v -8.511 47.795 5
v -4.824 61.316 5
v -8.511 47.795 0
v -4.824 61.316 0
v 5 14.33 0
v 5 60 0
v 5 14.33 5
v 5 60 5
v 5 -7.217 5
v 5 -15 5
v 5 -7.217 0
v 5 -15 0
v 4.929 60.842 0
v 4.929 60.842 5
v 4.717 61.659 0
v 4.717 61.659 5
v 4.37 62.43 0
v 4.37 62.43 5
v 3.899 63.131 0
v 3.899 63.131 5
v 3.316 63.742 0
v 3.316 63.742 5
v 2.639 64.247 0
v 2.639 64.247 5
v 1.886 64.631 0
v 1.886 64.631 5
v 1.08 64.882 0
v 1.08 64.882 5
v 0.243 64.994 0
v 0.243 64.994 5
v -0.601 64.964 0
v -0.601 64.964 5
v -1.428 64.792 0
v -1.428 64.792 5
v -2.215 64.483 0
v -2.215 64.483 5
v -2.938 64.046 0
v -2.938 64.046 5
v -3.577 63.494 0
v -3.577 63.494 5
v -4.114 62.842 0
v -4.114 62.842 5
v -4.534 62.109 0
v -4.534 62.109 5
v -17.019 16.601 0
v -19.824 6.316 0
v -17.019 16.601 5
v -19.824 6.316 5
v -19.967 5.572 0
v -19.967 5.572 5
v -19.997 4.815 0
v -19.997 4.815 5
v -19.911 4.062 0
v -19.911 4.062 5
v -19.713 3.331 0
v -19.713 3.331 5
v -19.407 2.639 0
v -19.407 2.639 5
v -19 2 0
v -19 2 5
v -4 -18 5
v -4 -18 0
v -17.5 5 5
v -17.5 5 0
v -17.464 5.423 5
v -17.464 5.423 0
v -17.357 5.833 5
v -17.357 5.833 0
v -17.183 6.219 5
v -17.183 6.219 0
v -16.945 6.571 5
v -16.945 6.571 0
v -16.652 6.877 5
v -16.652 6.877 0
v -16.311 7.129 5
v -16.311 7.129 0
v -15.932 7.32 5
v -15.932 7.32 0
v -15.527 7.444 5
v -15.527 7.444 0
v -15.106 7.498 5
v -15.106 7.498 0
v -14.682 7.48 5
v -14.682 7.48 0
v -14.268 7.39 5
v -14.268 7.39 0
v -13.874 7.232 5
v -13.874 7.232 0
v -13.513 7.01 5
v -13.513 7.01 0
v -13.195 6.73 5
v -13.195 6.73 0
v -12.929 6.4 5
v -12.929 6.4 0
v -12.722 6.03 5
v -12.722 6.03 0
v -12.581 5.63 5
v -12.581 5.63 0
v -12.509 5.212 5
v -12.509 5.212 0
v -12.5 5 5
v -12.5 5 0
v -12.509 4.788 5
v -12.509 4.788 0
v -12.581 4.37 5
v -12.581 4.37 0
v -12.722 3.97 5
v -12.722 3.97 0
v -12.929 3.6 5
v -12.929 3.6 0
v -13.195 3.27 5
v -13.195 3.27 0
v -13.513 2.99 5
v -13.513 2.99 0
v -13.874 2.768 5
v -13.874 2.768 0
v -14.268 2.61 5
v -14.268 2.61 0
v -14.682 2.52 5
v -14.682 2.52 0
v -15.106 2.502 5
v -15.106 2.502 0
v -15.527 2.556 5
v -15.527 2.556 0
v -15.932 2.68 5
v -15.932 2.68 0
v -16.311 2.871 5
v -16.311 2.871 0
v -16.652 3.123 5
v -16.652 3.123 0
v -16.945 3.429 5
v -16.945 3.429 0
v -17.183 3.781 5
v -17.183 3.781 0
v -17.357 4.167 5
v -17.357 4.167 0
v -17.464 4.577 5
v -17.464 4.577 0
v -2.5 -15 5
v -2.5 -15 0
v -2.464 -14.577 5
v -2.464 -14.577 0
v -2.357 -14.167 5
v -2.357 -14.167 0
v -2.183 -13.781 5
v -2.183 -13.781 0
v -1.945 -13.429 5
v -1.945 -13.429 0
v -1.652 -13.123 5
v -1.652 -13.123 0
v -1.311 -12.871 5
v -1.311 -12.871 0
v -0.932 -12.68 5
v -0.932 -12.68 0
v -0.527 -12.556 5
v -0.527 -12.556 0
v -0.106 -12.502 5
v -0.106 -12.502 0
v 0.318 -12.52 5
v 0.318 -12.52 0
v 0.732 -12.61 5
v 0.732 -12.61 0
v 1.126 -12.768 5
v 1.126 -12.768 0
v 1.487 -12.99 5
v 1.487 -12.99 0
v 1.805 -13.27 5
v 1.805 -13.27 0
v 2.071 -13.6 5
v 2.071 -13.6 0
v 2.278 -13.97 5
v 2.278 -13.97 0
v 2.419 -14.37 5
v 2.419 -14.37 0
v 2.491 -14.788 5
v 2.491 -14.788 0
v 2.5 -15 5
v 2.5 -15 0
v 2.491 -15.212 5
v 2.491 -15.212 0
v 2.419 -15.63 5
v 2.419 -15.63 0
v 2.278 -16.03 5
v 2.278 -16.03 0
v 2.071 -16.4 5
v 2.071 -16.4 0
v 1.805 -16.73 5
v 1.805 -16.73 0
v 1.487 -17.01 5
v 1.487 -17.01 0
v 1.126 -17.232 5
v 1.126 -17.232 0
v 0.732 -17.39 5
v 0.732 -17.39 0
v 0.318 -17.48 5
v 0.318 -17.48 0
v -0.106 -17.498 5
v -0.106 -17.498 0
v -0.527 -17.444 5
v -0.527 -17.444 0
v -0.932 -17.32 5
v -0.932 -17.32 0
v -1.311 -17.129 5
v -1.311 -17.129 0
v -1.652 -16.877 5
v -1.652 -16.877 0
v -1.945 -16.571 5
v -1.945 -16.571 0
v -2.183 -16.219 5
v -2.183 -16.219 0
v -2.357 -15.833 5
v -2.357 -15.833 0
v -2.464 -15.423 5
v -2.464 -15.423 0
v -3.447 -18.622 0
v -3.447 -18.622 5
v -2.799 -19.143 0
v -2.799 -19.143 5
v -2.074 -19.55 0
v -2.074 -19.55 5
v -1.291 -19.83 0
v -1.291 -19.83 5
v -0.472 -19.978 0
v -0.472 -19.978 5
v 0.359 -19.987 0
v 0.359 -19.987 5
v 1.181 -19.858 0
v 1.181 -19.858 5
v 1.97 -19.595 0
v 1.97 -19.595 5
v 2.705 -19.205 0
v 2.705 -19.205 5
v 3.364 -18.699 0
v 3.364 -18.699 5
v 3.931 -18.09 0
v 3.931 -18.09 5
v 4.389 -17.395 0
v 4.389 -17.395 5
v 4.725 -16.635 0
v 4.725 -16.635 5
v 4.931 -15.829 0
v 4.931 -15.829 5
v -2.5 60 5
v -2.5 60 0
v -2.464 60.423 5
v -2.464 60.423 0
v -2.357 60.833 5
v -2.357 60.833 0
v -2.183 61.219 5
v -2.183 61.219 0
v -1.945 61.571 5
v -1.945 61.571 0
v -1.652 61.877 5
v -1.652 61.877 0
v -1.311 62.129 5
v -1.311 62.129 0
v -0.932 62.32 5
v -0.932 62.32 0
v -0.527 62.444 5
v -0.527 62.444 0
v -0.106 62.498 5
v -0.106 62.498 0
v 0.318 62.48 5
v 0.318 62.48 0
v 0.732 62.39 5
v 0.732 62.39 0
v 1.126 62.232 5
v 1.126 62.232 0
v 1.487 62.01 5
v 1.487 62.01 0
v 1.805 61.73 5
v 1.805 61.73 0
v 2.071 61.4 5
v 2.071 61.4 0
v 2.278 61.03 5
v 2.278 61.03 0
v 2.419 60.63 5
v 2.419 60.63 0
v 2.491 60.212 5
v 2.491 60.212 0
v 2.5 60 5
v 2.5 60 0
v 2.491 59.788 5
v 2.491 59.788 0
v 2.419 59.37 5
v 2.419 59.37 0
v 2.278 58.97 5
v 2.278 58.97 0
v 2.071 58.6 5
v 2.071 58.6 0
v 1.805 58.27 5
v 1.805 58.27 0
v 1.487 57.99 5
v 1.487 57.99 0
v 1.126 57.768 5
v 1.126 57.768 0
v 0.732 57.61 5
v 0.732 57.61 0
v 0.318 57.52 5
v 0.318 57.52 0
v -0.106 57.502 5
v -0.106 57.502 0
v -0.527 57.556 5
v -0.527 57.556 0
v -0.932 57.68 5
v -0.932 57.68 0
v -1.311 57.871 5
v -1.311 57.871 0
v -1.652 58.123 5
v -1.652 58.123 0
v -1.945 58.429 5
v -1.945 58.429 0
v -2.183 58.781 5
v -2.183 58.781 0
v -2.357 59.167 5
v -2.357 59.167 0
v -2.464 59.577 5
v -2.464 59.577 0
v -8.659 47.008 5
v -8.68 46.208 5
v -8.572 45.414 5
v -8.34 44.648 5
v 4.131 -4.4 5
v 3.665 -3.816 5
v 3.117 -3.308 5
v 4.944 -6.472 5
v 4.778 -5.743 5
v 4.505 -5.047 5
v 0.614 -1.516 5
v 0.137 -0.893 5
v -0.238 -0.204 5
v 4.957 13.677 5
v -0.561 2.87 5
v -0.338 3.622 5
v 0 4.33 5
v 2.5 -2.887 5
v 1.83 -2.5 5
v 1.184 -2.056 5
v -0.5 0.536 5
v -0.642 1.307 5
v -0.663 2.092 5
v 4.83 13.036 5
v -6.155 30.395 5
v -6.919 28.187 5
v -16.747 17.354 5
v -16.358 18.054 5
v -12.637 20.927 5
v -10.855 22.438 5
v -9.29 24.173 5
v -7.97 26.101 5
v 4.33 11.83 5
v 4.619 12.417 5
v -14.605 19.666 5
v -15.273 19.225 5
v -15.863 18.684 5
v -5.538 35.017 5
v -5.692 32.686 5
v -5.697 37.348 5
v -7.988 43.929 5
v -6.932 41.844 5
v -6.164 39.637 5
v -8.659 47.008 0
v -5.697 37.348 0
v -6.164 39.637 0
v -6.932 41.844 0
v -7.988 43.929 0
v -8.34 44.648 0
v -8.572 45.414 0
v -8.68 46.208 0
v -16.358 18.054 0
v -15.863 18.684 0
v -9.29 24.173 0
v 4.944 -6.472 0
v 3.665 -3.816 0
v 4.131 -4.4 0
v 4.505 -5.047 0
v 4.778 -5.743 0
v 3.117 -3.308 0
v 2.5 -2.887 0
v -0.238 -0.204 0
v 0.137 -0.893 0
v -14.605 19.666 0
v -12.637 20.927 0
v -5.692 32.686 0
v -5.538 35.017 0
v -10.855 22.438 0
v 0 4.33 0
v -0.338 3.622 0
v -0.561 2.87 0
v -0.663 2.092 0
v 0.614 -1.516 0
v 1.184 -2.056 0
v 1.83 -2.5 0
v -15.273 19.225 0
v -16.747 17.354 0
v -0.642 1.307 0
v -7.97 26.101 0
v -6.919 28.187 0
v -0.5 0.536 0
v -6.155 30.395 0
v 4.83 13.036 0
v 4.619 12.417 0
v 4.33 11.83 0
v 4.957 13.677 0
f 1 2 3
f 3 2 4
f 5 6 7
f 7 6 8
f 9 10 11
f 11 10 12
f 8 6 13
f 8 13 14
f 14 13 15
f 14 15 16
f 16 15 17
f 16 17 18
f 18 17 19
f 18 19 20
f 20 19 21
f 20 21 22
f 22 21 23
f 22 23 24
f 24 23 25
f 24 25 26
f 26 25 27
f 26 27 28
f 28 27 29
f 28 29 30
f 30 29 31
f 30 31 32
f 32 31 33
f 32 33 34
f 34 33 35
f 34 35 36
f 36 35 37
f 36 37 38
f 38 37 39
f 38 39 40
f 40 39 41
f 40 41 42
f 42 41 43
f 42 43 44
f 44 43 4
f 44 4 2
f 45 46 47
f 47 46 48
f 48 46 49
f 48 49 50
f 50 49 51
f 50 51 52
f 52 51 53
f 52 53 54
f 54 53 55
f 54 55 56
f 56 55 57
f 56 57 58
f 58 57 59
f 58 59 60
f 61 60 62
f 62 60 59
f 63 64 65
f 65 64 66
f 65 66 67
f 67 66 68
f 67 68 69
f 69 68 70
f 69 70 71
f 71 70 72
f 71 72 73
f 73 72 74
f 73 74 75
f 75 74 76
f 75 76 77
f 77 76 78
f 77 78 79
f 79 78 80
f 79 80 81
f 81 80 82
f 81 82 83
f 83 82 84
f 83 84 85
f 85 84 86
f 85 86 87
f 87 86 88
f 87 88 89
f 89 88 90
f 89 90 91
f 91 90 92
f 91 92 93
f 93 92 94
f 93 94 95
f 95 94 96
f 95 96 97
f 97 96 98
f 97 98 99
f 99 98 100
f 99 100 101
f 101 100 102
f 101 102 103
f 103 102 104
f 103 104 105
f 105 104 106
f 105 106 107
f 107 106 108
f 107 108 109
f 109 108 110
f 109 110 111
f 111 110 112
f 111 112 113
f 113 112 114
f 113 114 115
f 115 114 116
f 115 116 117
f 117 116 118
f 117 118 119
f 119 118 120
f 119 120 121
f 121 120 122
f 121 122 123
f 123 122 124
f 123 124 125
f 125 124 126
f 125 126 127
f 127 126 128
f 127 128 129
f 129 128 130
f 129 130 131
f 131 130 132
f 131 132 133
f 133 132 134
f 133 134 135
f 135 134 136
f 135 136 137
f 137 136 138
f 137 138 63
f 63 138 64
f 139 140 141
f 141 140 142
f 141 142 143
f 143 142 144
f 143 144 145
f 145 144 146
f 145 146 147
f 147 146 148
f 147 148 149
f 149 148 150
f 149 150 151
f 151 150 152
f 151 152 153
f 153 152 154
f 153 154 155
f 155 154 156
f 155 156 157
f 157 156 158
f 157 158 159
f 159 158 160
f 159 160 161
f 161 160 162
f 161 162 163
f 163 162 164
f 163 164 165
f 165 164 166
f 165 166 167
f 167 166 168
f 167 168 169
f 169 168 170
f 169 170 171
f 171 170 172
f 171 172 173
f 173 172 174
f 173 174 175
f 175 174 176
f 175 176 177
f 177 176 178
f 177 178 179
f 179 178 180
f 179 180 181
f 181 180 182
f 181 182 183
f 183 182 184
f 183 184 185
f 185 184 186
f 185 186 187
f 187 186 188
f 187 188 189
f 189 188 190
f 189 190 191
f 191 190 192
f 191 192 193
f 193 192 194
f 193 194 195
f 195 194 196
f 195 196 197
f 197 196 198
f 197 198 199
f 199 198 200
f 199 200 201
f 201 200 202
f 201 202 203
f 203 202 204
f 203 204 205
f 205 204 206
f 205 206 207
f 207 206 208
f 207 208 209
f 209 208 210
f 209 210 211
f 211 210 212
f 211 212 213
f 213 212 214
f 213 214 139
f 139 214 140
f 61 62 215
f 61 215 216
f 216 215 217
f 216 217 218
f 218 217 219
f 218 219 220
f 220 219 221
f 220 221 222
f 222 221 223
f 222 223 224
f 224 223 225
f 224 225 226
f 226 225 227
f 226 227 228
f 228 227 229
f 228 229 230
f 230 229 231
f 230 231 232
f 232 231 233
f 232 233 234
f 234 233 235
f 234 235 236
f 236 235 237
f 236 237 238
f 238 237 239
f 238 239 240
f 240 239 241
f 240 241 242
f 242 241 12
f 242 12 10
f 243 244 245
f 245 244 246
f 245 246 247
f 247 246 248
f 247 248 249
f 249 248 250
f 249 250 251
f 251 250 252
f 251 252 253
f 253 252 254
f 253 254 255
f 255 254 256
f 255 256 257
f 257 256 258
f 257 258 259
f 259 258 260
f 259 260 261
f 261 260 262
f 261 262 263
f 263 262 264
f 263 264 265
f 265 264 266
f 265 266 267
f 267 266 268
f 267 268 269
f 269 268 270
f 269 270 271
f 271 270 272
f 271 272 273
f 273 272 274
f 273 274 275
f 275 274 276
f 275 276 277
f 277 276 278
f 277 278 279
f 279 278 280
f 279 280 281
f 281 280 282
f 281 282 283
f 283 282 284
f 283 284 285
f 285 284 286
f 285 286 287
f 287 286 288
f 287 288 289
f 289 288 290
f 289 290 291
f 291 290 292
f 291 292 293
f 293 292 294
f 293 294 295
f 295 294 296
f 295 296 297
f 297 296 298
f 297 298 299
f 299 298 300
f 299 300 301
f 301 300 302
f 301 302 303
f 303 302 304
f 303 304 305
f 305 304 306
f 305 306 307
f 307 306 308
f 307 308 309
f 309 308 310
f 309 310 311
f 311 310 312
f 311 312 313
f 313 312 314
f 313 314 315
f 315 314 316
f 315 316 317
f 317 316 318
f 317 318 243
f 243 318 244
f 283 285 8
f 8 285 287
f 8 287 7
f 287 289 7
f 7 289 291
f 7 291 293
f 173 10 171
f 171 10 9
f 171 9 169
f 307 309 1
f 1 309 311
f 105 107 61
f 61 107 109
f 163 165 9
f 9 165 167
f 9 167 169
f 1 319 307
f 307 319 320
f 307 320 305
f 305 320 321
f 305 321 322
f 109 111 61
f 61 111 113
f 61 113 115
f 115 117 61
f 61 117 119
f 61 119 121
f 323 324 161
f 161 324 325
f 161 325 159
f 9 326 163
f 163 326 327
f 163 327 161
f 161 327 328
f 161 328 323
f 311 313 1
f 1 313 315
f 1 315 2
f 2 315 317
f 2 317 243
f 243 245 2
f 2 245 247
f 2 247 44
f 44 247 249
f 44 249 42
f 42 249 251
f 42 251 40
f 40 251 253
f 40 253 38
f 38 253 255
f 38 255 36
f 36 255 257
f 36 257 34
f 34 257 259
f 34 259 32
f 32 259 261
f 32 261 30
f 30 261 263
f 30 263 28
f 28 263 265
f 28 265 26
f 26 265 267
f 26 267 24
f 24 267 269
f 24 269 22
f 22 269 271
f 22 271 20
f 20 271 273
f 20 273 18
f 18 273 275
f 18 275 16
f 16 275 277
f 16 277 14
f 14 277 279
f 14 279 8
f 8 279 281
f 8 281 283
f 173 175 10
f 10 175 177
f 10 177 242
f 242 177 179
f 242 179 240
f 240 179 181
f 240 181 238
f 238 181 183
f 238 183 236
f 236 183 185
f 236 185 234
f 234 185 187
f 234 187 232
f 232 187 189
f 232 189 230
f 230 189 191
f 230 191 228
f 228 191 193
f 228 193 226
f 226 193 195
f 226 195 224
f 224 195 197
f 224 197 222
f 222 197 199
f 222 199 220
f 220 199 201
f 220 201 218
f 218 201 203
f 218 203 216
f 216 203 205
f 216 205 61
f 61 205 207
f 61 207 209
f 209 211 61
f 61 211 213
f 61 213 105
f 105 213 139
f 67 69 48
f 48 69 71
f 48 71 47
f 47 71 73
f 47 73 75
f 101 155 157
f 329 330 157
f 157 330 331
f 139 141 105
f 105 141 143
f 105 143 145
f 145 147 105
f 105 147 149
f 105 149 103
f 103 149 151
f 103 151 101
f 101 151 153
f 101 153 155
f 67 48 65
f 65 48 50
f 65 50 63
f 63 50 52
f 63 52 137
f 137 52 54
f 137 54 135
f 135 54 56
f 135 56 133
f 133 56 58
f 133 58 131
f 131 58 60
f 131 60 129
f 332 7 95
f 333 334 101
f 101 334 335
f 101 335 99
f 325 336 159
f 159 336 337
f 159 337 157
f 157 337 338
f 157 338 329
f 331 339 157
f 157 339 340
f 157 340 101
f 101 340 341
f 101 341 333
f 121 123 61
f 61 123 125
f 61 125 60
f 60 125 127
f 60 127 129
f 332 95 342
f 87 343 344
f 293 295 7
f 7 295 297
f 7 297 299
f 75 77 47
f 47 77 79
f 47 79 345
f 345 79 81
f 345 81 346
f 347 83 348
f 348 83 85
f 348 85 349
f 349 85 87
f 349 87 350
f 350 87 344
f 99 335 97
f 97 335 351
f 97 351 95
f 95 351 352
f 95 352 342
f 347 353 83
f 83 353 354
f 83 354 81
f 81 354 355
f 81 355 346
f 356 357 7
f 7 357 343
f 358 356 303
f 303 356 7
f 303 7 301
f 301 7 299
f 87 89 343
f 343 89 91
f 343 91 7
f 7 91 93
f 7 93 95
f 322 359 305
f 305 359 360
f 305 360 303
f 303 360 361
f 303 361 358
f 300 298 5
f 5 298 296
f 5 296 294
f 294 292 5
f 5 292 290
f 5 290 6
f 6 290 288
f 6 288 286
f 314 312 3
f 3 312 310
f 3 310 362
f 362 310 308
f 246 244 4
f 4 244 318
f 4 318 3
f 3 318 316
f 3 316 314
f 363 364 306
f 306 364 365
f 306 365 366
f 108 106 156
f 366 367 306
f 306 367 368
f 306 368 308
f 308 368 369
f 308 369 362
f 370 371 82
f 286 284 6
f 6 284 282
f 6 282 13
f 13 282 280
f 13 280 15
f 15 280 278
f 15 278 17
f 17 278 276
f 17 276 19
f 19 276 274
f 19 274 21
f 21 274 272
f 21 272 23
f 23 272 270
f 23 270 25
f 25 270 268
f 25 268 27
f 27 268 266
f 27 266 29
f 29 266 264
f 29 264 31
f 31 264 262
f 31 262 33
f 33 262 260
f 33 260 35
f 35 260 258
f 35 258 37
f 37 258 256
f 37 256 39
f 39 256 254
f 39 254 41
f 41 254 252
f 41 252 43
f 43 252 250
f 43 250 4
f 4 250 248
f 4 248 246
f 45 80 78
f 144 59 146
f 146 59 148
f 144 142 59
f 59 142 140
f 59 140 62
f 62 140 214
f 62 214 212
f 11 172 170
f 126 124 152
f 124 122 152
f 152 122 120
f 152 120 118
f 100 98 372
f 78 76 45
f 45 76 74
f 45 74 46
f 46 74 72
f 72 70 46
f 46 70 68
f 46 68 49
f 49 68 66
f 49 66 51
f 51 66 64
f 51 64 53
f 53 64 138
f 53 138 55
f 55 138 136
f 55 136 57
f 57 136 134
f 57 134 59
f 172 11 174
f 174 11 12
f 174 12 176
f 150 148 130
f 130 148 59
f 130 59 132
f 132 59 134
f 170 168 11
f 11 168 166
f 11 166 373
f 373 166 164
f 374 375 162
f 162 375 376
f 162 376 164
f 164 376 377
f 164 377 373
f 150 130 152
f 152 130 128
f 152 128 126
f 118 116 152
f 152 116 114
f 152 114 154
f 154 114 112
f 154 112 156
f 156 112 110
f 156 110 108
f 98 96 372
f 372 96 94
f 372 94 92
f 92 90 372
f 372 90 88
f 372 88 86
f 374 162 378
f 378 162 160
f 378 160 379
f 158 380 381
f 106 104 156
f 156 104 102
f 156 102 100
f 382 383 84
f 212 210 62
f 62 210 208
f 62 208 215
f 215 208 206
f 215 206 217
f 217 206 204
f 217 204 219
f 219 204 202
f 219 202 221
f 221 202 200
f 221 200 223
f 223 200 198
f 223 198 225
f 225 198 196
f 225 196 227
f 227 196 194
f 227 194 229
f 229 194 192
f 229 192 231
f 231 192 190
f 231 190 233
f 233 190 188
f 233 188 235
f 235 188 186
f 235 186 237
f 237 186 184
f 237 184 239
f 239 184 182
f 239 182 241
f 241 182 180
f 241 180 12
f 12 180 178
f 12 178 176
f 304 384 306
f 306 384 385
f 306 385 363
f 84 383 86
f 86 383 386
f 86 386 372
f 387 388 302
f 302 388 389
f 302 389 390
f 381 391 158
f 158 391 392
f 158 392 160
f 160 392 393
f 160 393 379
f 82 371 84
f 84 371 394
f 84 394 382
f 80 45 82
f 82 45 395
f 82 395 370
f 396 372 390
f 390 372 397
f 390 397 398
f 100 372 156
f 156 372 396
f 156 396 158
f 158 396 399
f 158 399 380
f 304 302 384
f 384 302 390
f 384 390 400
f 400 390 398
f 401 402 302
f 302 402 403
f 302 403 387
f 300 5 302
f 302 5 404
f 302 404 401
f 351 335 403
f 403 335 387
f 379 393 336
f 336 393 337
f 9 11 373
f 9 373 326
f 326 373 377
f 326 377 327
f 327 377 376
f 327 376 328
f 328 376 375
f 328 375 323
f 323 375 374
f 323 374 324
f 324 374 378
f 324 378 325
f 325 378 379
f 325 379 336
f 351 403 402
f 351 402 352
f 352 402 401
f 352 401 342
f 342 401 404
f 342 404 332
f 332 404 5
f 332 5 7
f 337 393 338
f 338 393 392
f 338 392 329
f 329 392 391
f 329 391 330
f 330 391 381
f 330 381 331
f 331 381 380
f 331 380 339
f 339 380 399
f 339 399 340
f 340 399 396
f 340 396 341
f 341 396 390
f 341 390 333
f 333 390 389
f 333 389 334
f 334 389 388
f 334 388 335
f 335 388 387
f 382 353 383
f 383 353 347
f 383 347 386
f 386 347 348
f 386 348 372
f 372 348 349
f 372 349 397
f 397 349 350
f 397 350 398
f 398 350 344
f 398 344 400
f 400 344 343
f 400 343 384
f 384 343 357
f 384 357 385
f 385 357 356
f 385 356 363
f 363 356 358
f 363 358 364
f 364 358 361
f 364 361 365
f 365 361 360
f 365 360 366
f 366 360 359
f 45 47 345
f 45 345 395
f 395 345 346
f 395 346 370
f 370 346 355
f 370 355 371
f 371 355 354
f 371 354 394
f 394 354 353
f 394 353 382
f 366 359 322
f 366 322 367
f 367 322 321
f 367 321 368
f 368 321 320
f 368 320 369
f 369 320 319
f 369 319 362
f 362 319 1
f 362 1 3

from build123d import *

# Parameters (mm, degrees)
SKETCH1_R           = 5
SKETCH1_R_2         = 2.5
BOSS_EXTRUDE1_DEPTH = 5
CUT_EXTRUDE2_DEPTH  = 5
FILLET1_R           = 5
CUT_EXTRUDE3_DEPTH  = 69.190908485
FILLET2_R           = 5


with BuildPart() as part:
    # Sketch1 → Boss-Extrude1 (new body)
    # profile 1 of 4: a face of its own
    with BuildSketch(Plane.XY):
        with BuildLine():
            Line((5, -15), (5, 60))
            ThreePointArc((5, 60), (-0.663665755, 55.04424095), (-4.823819106, 61.315587029))
            Line((-4.823819106, 61.315587029), (-19.823819106, 6.315587029))
            ThreePointArc((-19.823819106, 6.315587029), (-14.336334245, 9.95575905), (-10, 5))
            ThreePointArc((-10, 5), (-13.41886117, 0.25658351), (-19, 2))
            Line((-19, 2), (-4, -18))
            ThreePointArc((-4, -18), (-1.58113883, -10.25658351), (5, -15))
        make_face()
    # profile 2 of 4: a face of its own
    with BuildSketch(Plane.XY):
        with Locations((-15, 5)):
            Circle(SKETCH1_R)
        with Locations((-15, 5)):
            Circle(SKETCH1_R_2, mode=Mode.SUBTRACT)
    # profile 3 of 4: a face of its own
    with BuildSketch(Plane.XY):
        with Locations((0, -15)):
            Circle(SKETCH1_R)
        with Locations((0, -15)):
            Circle(SKETCH1_R_2, mode=Mode.SUBTRACT)
    # profile 4 of 4: a face of its own
    with BuildSketch(Plane.XY):
        with Locations((0, 60)):
            Circle(SKETCH1_R)
        with Locations((0, 60)):
            Circle(SKETCH1_R_2, mode=Mode.SUBTRACT)
    extrude(amount=BOSS_EXTRUDE1_DEPTH)

    # Sketch3 → Cut-Extrude2 (cut)
    with BuildSketch(Plane.XY.offset(5)):
        Polygon((5, 12.990381057), (5, -4.330127019), (-2.5, 0), align=None)
    extrude(amount=-CUT_EXTRUDE2_DEPTH, mode=Mode.SUBTRACT)

    # Fillet1
    fillet1_edges = [part.edges().sort_by_distance(p)[0] for p in [
        (-2.5, 0, 2.5),
        (5, 12.990381057, 2.5),
        (5, -4.330127019, 2.5),
    ]]
    fillet(fillet1_edges, radius=FILLET1_R)

    # Sketch4 → Cut-Extrude3 (cut, through all)
    with BuildSketch(Plane.XY.offset(5)):
        with BuildLine():
            Line((-9.110982773, 45.595986917), (-16.418905931, 18.800268672))
            ThreePointArc((-16.418905931, 18.800268672), (-6.155108901, 30.395445399), (-9.110982773, 45.595986917))
        make_face()
    extrude(amount=-CUT_EXTRUDE3_DEPTH, mode=Mode.SUBTRACT)

    # Fillet2
    fillet2_edges = [part.edges().sort_by_distance(p)[0] for p in [
        (-9.110982773, 45.595986917, 2.5),
        (-16.418905931, 18.800268672, 2.5),
    ]]
    fillet(fillet2_edges, radius=FILLET2_R)


solid = part.part
